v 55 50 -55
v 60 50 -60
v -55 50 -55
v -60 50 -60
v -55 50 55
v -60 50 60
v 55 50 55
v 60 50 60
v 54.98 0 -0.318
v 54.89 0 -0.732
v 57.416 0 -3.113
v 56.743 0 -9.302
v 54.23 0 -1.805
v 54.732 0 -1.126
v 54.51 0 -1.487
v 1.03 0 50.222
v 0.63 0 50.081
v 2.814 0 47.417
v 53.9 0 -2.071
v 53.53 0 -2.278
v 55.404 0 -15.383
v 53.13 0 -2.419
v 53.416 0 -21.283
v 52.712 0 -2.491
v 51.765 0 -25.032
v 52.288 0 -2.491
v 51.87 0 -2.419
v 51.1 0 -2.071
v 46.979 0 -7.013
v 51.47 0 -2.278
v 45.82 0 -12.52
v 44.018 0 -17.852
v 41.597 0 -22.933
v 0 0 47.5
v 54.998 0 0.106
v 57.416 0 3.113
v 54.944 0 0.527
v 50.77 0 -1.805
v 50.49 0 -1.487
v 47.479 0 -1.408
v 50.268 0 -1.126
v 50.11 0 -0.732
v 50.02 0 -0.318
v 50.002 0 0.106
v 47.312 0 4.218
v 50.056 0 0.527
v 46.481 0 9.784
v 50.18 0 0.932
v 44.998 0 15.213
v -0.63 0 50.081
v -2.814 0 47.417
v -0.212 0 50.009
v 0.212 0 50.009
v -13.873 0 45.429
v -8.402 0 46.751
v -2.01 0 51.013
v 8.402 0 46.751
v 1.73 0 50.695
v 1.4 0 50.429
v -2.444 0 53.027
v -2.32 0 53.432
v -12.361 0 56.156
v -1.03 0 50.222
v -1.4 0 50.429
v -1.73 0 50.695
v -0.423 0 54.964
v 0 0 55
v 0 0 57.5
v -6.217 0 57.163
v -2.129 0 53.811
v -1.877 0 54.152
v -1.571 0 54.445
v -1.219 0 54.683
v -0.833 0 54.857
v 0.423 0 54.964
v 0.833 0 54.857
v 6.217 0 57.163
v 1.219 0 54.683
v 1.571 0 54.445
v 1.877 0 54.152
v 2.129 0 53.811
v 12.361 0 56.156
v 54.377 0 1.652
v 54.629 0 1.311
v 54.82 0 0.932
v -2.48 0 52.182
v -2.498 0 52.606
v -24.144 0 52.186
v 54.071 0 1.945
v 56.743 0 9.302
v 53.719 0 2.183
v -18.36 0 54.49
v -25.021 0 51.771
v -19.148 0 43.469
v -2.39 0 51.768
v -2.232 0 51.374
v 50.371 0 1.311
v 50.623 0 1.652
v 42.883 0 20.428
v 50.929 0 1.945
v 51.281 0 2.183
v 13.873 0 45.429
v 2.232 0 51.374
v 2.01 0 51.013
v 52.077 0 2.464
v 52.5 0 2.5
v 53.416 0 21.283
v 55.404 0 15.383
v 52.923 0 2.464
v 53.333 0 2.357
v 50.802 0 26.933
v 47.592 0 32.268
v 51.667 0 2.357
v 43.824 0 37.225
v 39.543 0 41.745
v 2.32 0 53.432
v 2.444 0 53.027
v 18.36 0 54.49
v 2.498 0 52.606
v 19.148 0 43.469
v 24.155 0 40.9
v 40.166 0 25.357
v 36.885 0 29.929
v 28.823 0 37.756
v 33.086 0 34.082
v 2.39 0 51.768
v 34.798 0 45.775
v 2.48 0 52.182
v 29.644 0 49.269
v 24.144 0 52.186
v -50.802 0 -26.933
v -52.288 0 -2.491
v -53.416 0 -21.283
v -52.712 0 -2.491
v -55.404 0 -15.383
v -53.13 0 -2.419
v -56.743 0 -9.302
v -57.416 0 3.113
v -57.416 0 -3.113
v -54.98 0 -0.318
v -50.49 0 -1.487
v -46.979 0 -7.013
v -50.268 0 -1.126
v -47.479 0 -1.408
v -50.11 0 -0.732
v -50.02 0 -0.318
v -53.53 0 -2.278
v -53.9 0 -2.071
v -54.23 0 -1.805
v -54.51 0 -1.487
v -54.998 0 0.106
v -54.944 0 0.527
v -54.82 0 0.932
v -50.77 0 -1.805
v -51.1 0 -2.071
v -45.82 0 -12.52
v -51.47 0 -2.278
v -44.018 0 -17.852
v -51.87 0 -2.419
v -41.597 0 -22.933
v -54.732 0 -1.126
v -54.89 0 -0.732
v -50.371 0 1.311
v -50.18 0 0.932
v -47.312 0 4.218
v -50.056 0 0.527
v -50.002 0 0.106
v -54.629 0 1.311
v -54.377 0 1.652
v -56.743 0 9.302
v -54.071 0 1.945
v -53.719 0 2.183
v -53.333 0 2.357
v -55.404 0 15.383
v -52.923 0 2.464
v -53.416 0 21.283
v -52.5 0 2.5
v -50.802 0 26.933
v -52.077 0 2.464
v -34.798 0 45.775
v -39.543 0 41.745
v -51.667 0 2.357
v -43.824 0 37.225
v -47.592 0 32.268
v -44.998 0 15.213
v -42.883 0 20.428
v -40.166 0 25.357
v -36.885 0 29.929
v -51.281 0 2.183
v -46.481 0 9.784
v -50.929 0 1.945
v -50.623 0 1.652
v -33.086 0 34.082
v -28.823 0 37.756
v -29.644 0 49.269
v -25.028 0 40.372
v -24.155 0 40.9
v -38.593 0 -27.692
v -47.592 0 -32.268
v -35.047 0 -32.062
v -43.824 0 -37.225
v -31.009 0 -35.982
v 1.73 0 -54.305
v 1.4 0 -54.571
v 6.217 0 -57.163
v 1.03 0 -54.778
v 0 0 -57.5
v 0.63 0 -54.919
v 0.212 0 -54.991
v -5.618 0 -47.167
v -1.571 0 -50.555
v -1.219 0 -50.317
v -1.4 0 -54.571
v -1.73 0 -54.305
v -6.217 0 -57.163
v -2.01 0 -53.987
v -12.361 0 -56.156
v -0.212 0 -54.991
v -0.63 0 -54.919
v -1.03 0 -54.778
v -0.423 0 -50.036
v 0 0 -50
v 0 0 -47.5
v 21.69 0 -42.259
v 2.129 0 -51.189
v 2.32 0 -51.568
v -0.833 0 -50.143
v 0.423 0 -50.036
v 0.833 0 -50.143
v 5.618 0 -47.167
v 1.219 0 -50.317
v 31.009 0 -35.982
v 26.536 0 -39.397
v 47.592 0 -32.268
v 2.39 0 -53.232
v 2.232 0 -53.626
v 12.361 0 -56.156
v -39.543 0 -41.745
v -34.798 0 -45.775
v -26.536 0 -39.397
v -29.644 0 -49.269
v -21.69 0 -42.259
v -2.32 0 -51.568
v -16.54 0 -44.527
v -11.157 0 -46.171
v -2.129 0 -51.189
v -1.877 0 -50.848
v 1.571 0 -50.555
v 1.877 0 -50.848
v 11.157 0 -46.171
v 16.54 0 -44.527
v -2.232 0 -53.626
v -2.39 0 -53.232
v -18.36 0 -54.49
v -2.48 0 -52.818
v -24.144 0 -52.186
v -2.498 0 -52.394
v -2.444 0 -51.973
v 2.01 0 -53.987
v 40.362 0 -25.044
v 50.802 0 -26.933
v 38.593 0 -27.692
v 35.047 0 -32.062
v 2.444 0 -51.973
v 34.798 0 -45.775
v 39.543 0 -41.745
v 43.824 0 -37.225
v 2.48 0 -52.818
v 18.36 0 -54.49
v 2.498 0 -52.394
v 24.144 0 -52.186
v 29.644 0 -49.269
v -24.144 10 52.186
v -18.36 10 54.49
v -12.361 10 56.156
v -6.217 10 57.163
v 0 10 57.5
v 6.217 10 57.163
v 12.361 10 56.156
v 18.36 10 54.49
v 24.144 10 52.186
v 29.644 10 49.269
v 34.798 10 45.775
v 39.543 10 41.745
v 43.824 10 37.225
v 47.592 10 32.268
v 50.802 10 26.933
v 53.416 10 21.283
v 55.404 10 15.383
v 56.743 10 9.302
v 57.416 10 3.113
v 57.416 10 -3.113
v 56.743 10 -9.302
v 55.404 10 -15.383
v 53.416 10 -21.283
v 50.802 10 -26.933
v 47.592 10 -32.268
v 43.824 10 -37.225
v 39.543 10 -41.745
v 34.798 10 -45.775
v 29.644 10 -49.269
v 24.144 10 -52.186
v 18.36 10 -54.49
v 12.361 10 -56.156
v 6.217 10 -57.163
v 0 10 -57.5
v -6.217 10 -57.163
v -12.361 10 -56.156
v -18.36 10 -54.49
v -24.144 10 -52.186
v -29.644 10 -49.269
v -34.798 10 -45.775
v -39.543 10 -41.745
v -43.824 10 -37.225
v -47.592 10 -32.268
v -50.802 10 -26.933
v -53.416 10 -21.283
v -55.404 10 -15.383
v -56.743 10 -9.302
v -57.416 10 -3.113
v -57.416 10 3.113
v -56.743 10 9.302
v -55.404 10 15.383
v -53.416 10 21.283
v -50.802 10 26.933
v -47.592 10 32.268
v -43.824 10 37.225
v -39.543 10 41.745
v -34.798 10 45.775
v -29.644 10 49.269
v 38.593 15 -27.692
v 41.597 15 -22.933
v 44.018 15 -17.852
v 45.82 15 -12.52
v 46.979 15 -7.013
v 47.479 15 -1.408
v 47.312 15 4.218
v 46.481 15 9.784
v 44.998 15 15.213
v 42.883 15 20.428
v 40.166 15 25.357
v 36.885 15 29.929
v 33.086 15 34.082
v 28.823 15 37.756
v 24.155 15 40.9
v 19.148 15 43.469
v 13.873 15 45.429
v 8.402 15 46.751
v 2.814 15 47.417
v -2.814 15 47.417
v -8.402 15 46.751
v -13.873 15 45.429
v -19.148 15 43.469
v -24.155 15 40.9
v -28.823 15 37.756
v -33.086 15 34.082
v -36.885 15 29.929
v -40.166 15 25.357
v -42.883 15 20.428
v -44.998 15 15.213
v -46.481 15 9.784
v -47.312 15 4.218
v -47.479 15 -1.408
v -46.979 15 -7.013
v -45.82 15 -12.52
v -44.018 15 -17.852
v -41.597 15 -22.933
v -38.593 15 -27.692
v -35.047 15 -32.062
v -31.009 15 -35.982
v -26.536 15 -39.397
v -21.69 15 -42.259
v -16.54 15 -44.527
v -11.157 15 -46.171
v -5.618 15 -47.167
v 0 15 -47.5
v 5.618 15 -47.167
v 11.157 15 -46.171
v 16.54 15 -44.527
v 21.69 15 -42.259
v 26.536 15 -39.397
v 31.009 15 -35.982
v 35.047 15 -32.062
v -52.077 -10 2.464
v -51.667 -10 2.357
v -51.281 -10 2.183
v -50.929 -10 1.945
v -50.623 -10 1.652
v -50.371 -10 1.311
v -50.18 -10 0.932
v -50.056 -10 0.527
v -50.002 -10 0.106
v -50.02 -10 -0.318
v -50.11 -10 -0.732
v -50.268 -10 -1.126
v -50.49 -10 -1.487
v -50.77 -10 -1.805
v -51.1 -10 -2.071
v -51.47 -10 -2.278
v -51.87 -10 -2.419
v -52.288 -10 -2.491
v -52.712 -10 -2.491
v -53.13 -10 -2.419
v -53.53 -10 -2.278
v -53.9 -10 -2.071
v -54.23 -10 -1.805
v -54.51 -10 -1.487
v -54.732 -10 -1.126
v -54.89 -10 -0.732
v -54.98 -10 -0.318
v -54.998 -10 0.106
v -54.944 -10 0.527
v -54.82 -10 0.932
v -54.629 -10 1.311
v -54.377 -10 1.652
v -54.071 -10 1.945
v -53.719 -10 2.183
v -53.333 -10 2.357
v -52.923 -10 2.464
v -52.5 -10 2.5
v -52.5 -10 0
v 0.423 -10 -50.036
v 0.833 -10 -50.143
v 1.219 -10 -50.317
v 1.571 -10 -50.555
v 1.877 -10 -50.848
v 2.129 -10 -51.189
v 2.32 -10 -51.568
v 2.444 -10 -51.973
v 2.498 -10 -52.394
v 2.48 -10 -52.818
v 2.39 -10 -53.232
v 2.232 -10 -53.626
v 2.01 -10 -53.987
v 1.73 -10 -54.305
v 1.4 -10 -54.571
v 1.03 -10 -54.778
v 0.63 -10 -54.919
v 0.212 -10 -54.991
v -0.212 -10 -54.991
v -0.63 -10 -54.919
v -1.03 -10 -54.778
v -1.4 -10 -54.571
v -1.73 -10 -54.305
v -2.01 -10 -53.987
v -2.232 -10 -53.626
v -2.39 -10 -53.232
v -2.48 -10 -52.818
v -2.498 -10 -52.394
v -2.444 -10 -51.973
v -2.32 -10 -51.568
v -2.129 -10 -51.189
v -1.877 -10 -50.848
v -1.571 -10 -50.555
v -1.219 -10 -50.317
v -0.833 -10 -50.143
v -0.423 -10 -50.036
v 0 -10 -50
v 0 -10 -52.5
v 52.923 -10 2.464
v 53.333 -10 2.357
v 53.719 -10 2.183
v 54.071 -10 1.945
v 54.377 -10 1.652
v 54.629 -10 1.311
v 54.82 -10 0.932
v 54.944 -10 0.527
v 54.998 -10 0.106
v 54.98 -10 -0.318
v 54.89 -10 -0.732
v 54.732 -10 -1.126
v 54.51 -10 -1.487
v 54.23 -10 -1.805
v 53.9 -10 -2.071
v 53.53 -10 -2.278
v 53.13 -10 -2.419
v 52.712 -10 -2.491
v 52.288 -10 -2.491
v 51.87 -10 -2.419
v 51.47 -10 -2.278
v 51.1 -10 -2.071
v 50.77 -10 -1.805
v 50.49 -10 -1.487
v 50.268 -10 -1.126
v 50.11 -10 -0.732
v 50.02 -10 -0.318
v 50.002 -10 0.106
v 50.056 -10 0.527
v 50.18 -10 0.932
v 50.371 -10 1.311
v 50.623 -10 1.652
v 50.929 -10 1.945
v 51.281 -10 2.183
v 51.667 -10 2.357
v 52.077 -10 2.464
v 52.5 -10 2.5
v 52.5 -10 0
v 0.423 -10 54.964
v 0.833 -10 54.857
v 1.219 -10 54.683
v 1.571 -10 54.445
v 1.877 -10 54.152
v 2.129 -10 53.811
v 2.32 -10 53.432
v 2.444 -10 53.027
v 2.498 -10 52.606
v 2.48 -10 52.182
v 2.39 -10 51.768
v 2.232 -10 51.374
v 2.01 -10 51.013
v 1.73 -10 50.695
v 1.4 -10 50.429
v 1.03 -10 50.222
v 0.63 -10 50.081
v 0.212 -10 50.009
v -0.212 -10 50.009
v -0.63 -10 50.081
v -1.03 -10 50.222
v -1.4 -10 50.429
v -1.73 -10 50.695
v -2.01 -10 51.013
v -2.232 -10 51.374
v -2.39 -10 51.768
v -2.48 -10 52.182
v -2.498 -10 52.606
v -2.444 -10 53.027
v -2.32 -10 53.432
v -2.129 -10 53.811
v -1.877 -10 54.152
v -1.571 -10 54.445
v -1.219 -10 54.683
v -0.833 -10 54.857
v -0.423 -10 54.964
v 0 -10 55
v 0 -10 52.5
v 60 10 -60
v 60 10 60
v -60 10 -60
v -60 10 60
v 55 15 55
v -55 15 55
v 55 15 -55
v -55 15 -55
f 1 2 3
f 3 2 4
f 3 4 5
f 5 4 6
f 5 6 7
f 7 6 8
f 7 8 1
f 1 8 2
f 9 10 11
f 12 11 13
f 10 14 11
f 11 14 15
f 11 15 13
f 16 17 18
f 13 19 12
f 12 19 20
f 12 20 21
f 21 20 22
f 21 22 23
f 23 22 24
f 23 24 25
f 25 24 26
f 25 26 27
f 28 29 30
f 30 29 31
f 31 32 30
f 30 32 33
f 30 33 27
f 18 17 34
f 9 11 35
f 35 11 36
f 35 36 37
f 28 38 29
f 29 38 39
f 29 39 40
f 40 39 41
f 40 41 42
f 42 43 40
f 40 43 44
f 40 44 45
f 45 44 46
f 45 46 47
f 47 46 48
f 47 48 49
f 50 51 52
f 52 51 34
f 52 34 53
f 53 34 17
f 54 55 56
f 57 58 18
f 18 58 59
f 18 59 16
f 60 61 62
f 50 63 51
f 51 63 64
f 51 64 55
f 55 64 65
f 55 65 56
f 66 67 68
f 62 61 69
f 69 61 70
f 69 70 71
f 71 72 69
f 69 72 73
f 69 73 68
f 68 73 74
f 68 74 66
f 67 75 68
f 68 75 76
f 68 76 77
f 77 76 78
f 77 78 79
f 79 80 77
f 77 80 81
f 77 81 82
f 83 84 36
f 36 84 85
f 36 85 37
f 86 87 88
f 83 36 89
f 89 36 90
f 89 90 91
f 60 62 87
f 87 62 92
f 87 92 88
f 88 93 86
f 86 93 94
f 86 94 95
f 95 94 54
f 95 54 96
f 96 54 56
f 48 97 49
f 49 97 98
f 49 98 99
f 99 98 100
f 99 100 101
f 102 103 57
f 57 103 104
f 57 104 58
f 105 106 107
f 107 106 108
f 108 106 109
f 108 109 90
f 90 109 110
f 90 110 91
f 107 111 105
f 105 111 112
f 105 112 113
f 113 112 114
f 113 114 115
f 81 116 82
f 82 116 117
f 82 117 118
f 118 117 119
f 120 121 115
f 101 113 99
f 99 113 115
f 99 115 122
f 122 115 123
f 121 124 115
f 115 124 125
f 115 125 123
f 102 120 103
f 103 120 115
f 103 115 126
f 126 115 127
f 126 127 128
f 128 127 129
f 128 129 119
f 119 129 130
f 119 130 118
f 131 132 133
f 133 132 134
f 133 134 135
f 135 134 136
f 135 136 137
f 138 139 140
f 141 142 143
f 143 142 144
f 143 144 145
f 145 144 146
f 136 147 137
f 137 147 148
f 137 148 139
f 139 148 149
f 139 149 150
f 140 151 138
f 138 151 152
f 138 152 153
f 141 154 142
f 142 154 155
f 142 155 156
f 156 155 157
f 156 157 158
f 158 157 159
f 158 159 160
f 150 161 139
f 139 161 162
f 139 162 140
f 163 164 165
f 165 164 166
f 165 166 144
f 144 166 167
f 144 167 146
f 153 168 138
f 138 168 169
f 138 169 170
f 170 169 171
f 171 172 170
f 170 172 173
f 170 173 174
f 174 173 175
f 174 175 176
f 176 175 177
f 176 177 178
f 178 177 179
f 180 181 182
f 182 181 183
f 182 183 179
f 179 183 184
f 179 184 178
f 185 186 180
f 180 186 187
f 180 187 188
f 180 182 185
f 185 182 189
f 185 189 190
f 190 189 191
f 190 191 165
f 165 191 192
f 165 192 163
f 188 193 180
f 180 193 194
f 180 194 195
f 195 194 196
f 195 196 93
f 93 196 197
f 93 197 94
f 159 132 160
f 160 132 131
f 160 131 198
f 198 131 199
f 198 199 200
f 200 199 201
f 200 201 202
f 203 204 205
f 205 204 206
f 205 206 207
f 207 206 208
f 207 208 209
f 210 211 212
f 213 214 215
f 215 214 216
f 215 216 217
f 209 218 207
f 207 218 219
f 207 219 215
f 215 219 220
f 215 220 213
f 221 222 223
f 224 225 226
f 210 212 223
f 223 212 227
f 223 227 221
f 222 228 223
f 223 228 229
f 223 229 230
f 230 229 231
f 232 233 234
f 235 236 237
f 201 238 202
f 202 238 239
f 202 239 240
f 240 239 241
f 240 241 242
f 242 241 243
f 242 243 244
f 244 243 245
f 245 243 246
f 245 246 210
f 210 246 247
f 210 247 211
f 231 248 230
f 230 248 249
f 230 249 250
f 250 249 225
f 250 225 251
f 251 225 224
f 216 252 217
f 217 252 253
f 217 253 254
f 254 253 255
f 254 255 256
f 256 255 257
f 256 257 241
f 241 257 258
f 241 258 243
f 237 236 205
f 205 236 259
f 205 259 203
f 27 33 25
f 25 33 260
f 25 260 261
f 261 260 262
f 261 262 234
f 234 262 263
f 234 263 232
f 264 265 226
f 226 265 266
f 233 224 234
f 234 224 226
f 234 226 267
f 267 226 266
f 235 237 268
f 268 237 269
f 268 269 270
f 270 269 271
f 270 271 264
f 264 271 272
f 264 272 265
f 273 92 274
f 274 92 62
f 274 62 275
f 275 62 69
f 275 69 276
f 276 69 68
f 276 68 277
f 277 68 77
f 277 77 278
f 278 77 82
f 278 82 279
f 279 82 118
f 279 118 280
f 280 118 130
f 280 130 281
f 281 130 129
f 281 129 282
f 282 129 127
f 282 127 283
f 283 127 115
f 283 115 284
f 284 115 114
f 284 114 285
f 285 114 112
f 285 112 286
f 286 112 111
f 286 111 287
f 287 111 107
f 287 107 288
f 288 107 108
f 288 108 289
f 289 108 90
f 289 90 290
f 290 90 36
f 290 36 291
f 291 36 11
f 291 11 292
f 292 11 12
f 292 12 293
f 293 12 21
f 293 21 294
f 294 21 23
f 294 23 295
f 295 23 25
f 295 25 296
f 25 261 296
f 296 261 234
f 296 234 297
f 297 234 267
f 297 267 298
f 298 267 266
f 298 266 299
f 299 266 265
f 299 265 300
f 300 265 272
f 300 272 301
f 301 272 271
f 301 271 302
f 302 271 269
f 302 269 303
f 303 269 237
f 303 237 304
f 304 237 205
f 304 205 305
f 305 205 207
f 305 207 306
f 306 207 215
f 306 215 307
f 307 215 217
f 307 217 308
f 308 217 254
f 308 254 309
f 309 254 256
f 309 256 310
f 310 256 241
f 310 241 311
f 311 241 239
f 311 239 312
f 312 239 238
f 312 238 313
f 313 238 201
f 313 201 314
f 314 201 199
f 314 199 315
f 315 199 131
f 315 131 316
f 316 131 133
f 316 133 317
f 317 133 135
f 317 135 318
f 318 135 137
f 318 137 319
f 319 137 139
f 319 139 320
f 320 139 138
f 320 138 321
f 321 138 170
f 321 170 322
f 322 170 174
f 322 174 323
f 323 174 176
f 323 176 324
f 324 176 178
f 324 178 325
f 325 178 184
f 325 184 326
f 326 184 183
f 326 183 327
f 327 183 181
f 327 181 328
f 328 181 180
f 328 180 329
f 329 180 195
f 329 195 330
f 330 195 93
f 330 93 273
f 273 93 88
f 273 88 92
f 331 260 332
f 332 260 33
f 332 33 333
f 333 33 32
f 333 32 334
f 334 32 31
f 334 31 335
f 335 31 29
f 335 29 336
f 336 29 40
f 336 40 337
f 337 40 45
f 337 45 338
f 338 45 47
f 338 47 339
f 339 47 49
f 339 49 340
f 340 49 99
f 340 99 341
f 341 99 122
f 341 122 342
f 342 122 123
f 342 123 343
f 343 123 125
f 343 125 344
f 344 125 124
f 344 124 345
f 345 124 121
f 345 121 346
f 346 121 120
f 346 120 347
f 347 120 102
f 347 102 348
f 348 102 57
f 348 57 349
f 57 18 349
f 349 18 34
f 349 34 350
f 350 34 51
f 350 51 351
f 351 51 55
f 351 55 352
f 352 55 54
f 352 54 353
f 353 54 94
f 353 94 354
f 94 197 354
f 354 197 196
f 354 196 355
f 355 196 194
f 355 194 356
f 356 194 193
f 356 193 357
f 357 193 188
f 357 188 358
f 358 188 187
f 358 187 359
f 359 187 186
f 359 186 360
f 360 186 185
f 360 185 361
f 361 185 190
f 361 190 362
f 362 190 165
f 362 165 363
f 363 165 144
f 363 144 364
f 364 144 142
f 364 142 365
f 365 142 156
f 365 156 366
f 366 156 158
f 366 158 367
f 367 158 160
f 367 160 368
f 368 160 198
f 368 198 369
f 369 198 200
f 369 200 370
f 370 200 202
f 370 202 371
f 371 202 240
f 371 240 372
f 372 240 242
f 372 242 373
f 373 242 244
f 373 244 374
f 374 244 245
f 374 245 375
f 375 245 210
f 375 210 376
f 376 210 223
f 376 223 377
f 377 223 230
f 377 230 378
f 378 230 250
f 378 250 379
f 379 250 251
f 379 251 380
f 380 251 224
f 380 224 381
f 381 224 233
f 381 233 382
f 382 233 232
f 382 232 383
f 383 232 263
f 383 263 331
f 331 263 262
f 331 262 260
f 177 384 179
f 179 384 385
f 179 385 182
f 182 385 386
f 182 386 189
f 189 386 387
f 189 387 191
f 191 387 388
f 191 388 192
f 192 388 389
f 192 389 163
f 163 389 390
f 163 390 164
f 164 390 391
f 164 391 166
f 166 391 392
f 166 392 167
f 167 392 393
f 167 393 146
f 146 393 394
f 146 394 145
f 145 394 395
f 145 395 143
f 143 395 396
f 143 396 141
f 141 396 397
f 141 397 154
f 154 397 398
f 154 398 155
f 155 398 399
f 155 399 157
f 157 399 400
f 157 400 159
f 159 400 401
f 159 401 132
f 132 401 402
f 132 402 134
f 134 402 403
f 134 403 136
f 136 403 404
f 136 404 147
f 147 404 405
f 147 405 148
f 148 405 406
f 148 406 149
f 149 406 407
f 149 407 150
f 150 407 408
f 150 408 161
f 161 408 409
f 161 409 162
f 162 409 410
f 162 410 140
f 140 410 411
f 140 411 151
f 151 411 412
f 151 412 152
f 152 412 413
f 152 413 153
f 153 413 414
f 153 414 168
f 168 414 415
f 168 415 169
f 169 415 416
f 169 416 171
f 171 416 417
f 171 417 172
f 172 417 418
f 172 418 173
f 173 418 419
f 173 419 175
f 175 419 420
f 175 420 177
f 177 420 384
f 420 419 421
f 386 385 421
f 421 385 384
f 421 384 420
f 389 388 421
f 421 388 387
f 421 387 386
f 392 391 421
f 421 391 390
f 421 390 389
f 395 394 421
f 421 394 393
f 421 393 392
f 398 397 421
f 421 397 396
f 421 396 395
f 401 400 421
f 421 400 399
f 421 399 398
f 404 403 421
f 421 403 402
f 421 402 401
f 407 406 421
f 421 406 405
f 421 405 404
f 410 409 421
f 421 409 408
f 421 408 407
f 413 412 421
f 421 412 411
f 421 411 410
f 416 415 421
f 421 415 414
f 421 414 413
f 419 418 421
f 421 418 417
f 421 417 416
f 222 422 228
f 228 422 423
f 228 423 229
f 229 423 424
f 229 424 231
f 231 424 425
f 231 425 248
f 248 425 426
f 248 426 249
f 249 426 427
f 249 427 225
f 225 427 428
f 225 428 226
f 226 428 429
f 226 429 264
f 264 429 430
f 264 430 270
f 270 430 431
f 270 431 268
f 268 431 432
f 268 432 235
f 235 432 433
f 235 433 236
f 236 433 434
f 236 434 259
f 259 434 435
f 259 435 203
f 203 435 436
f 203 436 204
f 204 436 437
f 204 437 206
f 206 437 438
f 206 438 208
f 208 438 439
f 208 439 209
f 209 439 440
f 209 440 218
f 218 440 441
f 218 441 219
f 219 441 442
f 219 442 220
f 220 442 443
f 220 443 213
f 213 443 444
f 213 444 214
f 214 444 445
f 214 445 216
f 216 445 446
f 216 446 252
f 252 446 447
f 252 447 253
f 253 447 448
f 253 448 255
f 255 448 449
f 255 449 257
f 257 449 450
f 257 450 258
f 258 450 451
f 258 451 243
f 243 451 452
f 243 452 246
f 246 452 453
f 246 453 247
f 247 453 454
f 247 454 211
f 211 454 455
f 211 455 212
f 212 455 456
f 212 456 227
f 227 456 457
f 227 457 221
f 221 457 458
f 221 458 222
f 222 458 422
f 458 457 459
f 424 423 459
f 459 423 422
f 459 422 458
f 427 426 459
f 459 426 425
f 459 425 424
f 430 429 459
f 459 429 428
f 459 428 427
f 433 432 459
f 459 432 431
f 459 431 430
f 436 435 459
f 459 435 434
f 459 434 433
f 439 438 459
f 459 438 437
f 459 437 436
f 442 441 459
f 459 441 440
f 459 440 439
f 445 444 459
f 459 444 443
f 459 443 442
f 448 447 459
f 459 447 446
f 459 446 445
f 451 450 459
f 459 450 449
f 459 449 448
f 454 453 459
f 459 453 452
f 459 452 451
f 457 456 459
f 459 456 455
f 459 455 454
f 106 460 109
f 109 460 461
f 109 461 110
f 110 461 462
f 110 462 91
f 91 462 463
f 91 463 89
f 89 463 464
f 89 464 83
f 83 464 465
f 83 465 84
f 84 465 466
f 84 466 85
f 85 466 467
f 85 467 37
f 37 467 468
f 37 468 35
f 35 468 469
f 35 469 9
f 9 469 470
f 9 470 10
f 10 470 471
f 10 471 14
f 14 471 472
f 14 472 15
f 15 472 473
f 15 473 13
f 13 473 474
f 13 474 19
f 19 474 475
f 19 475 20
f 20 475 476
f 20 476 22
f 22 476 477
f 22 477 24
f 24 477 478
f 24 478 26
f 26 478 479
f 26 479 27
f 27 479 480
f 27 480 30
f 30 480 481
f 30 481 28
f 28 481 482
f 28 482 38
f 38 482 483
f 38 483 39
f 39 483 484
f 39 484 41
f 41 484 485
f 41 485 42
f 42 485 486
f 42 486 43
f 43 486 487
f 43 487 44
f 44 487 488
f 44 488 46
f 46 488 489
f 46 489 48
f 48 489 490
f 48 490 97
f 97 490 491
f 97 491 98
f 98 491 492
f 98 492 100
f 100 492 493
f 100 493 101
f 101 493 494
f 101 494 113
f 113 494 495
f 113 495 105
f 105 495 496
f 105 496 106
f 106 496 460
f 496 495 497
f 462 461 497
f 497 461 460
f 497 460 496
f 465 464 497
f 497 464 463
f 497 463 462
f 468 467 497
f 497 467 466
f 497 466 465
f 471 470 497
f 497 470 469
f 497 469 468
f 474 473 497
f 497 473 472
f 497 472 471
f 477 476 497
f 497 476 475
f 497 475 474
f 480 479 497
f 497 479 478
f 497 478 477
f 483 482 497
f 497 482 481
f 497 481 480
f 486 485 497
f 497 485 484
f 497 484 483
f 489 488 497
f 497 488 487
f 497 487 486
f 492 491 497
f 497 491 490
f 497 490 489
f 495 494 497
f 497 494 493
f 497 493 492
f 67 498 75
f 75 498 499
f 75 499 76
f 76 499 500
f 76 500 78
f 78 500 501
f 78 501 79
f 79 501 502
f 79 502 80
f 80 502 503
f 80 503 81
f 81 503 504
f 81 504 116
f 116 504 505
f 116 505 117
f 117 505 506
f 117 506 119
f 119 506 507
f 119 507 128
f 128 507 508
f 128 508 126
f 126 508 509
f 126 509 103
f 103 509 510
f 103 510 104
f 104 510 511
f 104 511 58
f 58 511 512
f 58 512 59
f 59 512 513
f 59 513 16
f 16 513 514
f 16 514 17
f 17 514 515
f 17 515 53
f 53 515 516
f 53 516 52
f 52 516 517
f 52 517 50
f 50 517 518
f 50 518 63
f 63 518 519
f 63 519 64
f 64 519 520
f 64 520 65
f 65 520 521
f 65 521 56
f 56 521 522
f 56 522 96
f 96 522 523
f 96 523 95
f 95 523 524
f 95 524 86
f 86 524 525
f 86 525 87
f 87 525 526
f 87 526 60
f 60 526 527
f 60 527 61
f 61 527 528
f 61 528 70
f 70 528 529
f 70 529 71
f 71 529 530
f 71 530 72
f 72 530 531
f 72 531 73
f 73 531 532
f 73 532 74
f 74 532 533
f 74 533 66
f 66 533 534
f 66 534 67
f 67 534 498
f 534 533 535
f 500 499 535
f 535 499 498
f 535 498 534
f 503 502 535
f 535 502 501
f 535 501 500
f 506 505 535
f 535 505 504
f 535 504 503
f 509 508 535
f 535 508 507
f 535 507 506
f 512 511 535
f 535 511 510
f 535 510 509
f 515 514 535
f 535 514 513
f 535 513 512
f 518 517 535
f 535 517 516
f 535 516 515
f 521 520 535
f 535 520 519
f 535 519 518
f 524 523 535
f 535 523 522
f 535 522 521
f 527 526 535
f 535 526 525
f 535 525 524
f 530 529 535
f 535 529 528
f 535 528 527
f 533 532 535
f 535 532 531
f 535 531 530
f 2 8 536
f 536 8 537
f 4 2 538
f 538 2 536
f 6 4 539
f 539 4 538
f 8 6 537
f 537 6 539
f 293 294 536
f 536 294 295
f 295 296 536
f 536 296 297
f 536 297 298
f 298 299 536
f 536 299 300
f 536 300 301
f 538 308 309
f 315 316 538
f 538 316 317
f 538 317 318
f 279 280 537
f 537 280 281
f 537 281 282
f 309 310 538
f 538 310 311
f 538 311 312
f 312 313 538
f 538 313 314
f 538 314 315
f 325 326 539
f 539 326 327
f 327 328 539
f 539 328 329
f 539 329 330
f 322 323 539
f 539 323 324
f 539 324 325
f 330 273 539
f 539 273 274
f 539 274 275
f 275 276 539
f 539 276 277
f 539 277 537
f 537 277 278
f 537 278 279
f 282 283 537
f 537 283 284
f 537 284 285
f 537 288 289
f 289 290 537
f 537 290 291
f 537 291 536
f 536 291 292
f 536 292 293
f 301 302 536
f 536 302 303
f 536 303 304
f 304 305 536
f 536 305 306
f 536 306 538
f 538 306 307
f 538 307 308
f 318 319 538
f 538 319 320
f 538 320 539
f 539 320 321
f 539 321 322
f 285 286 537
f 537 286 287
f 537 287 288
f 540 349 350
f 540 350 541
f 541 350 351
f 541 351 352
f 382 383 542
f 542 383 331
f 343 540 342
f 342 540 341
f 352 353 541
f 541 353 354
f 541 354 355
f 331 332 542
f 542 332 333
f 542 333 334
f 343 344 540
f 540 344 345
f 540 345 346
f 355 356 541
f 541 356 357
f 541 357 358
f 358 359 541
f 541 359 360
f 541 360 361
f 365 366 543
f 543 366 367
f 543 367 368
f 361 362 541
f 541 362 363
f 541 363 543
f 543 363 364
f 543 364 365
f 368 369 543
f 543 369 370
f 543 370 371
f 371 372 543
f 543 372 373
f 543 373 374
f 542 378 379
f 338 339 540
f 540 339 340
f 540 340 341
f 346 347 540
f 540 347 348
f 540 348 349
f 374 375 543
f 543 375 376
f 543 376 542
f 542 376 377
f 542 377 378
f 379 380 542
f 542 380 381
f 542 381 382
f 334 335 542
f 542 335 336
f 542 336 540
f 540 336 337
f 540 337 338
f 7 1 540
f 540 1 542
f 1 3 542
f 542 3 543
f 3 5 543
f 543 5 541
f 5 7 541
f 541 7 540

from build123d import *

# Parameters (mm, degrees)
ESQUISSE1_R             = 57.5
ESQUISSE1_R_2           = 47.5
BOSS_EXTRU_1_DEPTH      = 10
ESQUISSE3_R             = 2.5
BOSS_EXTRU_2_DEPTH      = 10
ESQUISSE10_W            = 120
ESQUISSE10_H            = 120
BOSS_EXTRU_3_DEPTH      = 40
COQUE1_START            = 15
COQUE1_OUTLINE_W        = 110
COQUE1_OUTLINE_H        = 110
COQUE1_DEPTH            = 35
ESQUISSE14_R            = 47.5
ENL_V_MAT_EXTRU_1_DEPTH = 40


# Read off the part's stored shape, not the designer's step: Coque1
with BuildPart() as part:
    # Esquisse1 → Boss.-Extru.1 (new body)
    with BuildSketch(Plane(origin=(0, 0, 0), x_dir=(1, 0, 0), z_dir=(0, 1, 0))):
        with Locations(Location((0, 0, 0), (0, 0, 270))):
            Circle(ESQUISSE1_R)
        with Locations(Location((0, 0, 0), (0, 0, 270))):
            Circle(ESQUISSE1_R_2, mode=Mode.SUBTRACT)
    extrude(amount=BOSS_EXTRU_1_DEPTH)

    # Esquisse3 → Boss.-Extru.2 (add)
    with BuildSketch(Plane(origin=(0, 0, 0), x_dir=(1, 0, 0), z_dir=(0, 1, 0))):
        with Locations(Location((0, 52.5, 0), (0, 0, 270))):
            Circle(ESQUISSE3_R)
        with Locations(Location((0, -52.5, 0), (0, 0, 270))):
            Circle(ESQUISSE3_R)
        with Locations(Location((52.5, 0, 0), (0, 0, 270))):
            Circle(ESQUISSE3_R)
        with Locations(Location((-52.5, 0, 0), (0, 0, 270))):
            Circle(ESQUISSE3_R)
    extrude(amount=-BOSS_EXTRU_2_DEPTH)

    # Esquisse10 → Boss.-Extru.3 (add)
    with BuildSketch(Plane(origin=(0, 10, 0), x_dir=(1, 0, 0), z_dir=(0, 1, 0))):
        Rectangle(ESQUISSE10_W, ESQUISSE10_H)
    extrude(amount=BOSS_EXTRU_3_DEPTH)

    # Coque1 outline → Coque1 (cut)
    with BuildSketch(Plane(origin=(0, 0, 0), x_dir=(1, 0, 0), z_dir=(0, 1, 0)).offset(COQUE1_START)):
        Rectangle(COQUE1_OUTLINE_W, COQUE1_OUTLINE_H)
    extrude(amount=COQUE1_DEPTH, mode=Mode.SUBTRACT)

    # Esquisse14 → Enlèv. mat.-Extru.1 (cut)
    with BuildSketch(Plane.XZ.offset(-10)):
        with Locations(Location((0, 0, 0), (0, 0, 270))):
            Circle(ESQUISSE14_R)
    extrude(amount=-ENL_V_MAT_EXTRU_1_DEPTH, mode=Mode.SUBTRACT)


solid = part.part
